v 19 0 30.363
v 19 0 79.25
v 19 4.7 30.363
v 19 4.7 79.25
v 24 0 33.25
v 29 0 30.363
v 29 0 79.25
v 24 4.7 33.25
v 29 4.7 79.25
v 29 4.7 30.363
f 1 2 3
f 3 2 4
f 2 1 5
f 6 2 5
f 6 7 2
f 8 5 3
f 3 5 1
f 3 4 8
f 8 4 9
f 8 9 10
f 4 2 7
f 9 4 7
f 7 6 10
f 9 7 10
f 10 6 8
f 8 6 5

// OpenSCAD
module hexa(tot_h, radio)
{	linear_extrude(height = tot_h, center = true, twist = 0)
	circle(r = radio, $fn=6);}

x_motor3 = 45;
y_motor3 = 45;
z_motor3 = 8;


radio = 6;
espesor = 5;

//union(){
//translate([17-espesor,33/2-(2*radio+1)/2,0]) cube([espesor, 2*radio+1 , 8]);
//translate([17-espesor,4,4]) cube([espesor, 25 , 4]);
//};

//translate([0,0,espesor]) rotate(a=90, v=[0,1,0]) 
    
//difference(){
//translate([0,-(2*radio+1)/2,0]) cube([espesor, 2*radio+1 , 2*radio+2+2+2]);
//translate([2.5,0,radio+2+2]) rotate(a=90, v=[0,1,0]) hexa(espesor, radio);   
//};

//translate([2.5,0,radio+2+2]) rotate(a=90, v=[0,1,0]) cylinder(espesor, r1 = 3, r2 = 3);


//translate([0,0,20]) rotate(a=180, v=[0,1,0]) difference(){
//translate([20-9/2,-17/2,0]) cube([9, 17, 20]);
//translate([20-5.2/2,-(2*radio+1.6)/2,0]) cube([5.2, 2*radio+1.6, 2*radio+2+2+2.6]);
//translate([20,0,radio+2+2]) rotate(a=90, v=[0,1,0]) linear_extrude(height = 9, center = true, twist = 0) circle(r = 7/2, $fn=100);;
//};
//



//
//translate([0,0,20]) rotate(a=180, v=[0,1,0]) difference(){
//translate([20-9/2,-17/2,0]) cube([9, 17, 20]);
//translate([20-5.2/2,-(2*radio+1.6)/2,0]) cube([5.2, 2*radio+1.6, 20]);
//translate([20,0,radio+2+2]) rotate(a=90, v=[0,1,0]) linear_extrude(height = 9, center = true, twist = 0) circle(r = 7/2, $fn=100);;
//};

//////////////////////////////////////////////////////////////////////////////////////////////////////////////////////////////////////////

esp = 5.2;

grosor = 15;

difference(){translate([24-grosor/2+2.3+0.2,0,45.5/2+4.5-18/2+11]) cube([10,esp-0.5,50]);
translate([24,esp/2,45.5/2+4.5]) rotate(a=90, v=[0,0,1]) rotate(a=90, v=[0,1,0])hexa(esp, 6);};
